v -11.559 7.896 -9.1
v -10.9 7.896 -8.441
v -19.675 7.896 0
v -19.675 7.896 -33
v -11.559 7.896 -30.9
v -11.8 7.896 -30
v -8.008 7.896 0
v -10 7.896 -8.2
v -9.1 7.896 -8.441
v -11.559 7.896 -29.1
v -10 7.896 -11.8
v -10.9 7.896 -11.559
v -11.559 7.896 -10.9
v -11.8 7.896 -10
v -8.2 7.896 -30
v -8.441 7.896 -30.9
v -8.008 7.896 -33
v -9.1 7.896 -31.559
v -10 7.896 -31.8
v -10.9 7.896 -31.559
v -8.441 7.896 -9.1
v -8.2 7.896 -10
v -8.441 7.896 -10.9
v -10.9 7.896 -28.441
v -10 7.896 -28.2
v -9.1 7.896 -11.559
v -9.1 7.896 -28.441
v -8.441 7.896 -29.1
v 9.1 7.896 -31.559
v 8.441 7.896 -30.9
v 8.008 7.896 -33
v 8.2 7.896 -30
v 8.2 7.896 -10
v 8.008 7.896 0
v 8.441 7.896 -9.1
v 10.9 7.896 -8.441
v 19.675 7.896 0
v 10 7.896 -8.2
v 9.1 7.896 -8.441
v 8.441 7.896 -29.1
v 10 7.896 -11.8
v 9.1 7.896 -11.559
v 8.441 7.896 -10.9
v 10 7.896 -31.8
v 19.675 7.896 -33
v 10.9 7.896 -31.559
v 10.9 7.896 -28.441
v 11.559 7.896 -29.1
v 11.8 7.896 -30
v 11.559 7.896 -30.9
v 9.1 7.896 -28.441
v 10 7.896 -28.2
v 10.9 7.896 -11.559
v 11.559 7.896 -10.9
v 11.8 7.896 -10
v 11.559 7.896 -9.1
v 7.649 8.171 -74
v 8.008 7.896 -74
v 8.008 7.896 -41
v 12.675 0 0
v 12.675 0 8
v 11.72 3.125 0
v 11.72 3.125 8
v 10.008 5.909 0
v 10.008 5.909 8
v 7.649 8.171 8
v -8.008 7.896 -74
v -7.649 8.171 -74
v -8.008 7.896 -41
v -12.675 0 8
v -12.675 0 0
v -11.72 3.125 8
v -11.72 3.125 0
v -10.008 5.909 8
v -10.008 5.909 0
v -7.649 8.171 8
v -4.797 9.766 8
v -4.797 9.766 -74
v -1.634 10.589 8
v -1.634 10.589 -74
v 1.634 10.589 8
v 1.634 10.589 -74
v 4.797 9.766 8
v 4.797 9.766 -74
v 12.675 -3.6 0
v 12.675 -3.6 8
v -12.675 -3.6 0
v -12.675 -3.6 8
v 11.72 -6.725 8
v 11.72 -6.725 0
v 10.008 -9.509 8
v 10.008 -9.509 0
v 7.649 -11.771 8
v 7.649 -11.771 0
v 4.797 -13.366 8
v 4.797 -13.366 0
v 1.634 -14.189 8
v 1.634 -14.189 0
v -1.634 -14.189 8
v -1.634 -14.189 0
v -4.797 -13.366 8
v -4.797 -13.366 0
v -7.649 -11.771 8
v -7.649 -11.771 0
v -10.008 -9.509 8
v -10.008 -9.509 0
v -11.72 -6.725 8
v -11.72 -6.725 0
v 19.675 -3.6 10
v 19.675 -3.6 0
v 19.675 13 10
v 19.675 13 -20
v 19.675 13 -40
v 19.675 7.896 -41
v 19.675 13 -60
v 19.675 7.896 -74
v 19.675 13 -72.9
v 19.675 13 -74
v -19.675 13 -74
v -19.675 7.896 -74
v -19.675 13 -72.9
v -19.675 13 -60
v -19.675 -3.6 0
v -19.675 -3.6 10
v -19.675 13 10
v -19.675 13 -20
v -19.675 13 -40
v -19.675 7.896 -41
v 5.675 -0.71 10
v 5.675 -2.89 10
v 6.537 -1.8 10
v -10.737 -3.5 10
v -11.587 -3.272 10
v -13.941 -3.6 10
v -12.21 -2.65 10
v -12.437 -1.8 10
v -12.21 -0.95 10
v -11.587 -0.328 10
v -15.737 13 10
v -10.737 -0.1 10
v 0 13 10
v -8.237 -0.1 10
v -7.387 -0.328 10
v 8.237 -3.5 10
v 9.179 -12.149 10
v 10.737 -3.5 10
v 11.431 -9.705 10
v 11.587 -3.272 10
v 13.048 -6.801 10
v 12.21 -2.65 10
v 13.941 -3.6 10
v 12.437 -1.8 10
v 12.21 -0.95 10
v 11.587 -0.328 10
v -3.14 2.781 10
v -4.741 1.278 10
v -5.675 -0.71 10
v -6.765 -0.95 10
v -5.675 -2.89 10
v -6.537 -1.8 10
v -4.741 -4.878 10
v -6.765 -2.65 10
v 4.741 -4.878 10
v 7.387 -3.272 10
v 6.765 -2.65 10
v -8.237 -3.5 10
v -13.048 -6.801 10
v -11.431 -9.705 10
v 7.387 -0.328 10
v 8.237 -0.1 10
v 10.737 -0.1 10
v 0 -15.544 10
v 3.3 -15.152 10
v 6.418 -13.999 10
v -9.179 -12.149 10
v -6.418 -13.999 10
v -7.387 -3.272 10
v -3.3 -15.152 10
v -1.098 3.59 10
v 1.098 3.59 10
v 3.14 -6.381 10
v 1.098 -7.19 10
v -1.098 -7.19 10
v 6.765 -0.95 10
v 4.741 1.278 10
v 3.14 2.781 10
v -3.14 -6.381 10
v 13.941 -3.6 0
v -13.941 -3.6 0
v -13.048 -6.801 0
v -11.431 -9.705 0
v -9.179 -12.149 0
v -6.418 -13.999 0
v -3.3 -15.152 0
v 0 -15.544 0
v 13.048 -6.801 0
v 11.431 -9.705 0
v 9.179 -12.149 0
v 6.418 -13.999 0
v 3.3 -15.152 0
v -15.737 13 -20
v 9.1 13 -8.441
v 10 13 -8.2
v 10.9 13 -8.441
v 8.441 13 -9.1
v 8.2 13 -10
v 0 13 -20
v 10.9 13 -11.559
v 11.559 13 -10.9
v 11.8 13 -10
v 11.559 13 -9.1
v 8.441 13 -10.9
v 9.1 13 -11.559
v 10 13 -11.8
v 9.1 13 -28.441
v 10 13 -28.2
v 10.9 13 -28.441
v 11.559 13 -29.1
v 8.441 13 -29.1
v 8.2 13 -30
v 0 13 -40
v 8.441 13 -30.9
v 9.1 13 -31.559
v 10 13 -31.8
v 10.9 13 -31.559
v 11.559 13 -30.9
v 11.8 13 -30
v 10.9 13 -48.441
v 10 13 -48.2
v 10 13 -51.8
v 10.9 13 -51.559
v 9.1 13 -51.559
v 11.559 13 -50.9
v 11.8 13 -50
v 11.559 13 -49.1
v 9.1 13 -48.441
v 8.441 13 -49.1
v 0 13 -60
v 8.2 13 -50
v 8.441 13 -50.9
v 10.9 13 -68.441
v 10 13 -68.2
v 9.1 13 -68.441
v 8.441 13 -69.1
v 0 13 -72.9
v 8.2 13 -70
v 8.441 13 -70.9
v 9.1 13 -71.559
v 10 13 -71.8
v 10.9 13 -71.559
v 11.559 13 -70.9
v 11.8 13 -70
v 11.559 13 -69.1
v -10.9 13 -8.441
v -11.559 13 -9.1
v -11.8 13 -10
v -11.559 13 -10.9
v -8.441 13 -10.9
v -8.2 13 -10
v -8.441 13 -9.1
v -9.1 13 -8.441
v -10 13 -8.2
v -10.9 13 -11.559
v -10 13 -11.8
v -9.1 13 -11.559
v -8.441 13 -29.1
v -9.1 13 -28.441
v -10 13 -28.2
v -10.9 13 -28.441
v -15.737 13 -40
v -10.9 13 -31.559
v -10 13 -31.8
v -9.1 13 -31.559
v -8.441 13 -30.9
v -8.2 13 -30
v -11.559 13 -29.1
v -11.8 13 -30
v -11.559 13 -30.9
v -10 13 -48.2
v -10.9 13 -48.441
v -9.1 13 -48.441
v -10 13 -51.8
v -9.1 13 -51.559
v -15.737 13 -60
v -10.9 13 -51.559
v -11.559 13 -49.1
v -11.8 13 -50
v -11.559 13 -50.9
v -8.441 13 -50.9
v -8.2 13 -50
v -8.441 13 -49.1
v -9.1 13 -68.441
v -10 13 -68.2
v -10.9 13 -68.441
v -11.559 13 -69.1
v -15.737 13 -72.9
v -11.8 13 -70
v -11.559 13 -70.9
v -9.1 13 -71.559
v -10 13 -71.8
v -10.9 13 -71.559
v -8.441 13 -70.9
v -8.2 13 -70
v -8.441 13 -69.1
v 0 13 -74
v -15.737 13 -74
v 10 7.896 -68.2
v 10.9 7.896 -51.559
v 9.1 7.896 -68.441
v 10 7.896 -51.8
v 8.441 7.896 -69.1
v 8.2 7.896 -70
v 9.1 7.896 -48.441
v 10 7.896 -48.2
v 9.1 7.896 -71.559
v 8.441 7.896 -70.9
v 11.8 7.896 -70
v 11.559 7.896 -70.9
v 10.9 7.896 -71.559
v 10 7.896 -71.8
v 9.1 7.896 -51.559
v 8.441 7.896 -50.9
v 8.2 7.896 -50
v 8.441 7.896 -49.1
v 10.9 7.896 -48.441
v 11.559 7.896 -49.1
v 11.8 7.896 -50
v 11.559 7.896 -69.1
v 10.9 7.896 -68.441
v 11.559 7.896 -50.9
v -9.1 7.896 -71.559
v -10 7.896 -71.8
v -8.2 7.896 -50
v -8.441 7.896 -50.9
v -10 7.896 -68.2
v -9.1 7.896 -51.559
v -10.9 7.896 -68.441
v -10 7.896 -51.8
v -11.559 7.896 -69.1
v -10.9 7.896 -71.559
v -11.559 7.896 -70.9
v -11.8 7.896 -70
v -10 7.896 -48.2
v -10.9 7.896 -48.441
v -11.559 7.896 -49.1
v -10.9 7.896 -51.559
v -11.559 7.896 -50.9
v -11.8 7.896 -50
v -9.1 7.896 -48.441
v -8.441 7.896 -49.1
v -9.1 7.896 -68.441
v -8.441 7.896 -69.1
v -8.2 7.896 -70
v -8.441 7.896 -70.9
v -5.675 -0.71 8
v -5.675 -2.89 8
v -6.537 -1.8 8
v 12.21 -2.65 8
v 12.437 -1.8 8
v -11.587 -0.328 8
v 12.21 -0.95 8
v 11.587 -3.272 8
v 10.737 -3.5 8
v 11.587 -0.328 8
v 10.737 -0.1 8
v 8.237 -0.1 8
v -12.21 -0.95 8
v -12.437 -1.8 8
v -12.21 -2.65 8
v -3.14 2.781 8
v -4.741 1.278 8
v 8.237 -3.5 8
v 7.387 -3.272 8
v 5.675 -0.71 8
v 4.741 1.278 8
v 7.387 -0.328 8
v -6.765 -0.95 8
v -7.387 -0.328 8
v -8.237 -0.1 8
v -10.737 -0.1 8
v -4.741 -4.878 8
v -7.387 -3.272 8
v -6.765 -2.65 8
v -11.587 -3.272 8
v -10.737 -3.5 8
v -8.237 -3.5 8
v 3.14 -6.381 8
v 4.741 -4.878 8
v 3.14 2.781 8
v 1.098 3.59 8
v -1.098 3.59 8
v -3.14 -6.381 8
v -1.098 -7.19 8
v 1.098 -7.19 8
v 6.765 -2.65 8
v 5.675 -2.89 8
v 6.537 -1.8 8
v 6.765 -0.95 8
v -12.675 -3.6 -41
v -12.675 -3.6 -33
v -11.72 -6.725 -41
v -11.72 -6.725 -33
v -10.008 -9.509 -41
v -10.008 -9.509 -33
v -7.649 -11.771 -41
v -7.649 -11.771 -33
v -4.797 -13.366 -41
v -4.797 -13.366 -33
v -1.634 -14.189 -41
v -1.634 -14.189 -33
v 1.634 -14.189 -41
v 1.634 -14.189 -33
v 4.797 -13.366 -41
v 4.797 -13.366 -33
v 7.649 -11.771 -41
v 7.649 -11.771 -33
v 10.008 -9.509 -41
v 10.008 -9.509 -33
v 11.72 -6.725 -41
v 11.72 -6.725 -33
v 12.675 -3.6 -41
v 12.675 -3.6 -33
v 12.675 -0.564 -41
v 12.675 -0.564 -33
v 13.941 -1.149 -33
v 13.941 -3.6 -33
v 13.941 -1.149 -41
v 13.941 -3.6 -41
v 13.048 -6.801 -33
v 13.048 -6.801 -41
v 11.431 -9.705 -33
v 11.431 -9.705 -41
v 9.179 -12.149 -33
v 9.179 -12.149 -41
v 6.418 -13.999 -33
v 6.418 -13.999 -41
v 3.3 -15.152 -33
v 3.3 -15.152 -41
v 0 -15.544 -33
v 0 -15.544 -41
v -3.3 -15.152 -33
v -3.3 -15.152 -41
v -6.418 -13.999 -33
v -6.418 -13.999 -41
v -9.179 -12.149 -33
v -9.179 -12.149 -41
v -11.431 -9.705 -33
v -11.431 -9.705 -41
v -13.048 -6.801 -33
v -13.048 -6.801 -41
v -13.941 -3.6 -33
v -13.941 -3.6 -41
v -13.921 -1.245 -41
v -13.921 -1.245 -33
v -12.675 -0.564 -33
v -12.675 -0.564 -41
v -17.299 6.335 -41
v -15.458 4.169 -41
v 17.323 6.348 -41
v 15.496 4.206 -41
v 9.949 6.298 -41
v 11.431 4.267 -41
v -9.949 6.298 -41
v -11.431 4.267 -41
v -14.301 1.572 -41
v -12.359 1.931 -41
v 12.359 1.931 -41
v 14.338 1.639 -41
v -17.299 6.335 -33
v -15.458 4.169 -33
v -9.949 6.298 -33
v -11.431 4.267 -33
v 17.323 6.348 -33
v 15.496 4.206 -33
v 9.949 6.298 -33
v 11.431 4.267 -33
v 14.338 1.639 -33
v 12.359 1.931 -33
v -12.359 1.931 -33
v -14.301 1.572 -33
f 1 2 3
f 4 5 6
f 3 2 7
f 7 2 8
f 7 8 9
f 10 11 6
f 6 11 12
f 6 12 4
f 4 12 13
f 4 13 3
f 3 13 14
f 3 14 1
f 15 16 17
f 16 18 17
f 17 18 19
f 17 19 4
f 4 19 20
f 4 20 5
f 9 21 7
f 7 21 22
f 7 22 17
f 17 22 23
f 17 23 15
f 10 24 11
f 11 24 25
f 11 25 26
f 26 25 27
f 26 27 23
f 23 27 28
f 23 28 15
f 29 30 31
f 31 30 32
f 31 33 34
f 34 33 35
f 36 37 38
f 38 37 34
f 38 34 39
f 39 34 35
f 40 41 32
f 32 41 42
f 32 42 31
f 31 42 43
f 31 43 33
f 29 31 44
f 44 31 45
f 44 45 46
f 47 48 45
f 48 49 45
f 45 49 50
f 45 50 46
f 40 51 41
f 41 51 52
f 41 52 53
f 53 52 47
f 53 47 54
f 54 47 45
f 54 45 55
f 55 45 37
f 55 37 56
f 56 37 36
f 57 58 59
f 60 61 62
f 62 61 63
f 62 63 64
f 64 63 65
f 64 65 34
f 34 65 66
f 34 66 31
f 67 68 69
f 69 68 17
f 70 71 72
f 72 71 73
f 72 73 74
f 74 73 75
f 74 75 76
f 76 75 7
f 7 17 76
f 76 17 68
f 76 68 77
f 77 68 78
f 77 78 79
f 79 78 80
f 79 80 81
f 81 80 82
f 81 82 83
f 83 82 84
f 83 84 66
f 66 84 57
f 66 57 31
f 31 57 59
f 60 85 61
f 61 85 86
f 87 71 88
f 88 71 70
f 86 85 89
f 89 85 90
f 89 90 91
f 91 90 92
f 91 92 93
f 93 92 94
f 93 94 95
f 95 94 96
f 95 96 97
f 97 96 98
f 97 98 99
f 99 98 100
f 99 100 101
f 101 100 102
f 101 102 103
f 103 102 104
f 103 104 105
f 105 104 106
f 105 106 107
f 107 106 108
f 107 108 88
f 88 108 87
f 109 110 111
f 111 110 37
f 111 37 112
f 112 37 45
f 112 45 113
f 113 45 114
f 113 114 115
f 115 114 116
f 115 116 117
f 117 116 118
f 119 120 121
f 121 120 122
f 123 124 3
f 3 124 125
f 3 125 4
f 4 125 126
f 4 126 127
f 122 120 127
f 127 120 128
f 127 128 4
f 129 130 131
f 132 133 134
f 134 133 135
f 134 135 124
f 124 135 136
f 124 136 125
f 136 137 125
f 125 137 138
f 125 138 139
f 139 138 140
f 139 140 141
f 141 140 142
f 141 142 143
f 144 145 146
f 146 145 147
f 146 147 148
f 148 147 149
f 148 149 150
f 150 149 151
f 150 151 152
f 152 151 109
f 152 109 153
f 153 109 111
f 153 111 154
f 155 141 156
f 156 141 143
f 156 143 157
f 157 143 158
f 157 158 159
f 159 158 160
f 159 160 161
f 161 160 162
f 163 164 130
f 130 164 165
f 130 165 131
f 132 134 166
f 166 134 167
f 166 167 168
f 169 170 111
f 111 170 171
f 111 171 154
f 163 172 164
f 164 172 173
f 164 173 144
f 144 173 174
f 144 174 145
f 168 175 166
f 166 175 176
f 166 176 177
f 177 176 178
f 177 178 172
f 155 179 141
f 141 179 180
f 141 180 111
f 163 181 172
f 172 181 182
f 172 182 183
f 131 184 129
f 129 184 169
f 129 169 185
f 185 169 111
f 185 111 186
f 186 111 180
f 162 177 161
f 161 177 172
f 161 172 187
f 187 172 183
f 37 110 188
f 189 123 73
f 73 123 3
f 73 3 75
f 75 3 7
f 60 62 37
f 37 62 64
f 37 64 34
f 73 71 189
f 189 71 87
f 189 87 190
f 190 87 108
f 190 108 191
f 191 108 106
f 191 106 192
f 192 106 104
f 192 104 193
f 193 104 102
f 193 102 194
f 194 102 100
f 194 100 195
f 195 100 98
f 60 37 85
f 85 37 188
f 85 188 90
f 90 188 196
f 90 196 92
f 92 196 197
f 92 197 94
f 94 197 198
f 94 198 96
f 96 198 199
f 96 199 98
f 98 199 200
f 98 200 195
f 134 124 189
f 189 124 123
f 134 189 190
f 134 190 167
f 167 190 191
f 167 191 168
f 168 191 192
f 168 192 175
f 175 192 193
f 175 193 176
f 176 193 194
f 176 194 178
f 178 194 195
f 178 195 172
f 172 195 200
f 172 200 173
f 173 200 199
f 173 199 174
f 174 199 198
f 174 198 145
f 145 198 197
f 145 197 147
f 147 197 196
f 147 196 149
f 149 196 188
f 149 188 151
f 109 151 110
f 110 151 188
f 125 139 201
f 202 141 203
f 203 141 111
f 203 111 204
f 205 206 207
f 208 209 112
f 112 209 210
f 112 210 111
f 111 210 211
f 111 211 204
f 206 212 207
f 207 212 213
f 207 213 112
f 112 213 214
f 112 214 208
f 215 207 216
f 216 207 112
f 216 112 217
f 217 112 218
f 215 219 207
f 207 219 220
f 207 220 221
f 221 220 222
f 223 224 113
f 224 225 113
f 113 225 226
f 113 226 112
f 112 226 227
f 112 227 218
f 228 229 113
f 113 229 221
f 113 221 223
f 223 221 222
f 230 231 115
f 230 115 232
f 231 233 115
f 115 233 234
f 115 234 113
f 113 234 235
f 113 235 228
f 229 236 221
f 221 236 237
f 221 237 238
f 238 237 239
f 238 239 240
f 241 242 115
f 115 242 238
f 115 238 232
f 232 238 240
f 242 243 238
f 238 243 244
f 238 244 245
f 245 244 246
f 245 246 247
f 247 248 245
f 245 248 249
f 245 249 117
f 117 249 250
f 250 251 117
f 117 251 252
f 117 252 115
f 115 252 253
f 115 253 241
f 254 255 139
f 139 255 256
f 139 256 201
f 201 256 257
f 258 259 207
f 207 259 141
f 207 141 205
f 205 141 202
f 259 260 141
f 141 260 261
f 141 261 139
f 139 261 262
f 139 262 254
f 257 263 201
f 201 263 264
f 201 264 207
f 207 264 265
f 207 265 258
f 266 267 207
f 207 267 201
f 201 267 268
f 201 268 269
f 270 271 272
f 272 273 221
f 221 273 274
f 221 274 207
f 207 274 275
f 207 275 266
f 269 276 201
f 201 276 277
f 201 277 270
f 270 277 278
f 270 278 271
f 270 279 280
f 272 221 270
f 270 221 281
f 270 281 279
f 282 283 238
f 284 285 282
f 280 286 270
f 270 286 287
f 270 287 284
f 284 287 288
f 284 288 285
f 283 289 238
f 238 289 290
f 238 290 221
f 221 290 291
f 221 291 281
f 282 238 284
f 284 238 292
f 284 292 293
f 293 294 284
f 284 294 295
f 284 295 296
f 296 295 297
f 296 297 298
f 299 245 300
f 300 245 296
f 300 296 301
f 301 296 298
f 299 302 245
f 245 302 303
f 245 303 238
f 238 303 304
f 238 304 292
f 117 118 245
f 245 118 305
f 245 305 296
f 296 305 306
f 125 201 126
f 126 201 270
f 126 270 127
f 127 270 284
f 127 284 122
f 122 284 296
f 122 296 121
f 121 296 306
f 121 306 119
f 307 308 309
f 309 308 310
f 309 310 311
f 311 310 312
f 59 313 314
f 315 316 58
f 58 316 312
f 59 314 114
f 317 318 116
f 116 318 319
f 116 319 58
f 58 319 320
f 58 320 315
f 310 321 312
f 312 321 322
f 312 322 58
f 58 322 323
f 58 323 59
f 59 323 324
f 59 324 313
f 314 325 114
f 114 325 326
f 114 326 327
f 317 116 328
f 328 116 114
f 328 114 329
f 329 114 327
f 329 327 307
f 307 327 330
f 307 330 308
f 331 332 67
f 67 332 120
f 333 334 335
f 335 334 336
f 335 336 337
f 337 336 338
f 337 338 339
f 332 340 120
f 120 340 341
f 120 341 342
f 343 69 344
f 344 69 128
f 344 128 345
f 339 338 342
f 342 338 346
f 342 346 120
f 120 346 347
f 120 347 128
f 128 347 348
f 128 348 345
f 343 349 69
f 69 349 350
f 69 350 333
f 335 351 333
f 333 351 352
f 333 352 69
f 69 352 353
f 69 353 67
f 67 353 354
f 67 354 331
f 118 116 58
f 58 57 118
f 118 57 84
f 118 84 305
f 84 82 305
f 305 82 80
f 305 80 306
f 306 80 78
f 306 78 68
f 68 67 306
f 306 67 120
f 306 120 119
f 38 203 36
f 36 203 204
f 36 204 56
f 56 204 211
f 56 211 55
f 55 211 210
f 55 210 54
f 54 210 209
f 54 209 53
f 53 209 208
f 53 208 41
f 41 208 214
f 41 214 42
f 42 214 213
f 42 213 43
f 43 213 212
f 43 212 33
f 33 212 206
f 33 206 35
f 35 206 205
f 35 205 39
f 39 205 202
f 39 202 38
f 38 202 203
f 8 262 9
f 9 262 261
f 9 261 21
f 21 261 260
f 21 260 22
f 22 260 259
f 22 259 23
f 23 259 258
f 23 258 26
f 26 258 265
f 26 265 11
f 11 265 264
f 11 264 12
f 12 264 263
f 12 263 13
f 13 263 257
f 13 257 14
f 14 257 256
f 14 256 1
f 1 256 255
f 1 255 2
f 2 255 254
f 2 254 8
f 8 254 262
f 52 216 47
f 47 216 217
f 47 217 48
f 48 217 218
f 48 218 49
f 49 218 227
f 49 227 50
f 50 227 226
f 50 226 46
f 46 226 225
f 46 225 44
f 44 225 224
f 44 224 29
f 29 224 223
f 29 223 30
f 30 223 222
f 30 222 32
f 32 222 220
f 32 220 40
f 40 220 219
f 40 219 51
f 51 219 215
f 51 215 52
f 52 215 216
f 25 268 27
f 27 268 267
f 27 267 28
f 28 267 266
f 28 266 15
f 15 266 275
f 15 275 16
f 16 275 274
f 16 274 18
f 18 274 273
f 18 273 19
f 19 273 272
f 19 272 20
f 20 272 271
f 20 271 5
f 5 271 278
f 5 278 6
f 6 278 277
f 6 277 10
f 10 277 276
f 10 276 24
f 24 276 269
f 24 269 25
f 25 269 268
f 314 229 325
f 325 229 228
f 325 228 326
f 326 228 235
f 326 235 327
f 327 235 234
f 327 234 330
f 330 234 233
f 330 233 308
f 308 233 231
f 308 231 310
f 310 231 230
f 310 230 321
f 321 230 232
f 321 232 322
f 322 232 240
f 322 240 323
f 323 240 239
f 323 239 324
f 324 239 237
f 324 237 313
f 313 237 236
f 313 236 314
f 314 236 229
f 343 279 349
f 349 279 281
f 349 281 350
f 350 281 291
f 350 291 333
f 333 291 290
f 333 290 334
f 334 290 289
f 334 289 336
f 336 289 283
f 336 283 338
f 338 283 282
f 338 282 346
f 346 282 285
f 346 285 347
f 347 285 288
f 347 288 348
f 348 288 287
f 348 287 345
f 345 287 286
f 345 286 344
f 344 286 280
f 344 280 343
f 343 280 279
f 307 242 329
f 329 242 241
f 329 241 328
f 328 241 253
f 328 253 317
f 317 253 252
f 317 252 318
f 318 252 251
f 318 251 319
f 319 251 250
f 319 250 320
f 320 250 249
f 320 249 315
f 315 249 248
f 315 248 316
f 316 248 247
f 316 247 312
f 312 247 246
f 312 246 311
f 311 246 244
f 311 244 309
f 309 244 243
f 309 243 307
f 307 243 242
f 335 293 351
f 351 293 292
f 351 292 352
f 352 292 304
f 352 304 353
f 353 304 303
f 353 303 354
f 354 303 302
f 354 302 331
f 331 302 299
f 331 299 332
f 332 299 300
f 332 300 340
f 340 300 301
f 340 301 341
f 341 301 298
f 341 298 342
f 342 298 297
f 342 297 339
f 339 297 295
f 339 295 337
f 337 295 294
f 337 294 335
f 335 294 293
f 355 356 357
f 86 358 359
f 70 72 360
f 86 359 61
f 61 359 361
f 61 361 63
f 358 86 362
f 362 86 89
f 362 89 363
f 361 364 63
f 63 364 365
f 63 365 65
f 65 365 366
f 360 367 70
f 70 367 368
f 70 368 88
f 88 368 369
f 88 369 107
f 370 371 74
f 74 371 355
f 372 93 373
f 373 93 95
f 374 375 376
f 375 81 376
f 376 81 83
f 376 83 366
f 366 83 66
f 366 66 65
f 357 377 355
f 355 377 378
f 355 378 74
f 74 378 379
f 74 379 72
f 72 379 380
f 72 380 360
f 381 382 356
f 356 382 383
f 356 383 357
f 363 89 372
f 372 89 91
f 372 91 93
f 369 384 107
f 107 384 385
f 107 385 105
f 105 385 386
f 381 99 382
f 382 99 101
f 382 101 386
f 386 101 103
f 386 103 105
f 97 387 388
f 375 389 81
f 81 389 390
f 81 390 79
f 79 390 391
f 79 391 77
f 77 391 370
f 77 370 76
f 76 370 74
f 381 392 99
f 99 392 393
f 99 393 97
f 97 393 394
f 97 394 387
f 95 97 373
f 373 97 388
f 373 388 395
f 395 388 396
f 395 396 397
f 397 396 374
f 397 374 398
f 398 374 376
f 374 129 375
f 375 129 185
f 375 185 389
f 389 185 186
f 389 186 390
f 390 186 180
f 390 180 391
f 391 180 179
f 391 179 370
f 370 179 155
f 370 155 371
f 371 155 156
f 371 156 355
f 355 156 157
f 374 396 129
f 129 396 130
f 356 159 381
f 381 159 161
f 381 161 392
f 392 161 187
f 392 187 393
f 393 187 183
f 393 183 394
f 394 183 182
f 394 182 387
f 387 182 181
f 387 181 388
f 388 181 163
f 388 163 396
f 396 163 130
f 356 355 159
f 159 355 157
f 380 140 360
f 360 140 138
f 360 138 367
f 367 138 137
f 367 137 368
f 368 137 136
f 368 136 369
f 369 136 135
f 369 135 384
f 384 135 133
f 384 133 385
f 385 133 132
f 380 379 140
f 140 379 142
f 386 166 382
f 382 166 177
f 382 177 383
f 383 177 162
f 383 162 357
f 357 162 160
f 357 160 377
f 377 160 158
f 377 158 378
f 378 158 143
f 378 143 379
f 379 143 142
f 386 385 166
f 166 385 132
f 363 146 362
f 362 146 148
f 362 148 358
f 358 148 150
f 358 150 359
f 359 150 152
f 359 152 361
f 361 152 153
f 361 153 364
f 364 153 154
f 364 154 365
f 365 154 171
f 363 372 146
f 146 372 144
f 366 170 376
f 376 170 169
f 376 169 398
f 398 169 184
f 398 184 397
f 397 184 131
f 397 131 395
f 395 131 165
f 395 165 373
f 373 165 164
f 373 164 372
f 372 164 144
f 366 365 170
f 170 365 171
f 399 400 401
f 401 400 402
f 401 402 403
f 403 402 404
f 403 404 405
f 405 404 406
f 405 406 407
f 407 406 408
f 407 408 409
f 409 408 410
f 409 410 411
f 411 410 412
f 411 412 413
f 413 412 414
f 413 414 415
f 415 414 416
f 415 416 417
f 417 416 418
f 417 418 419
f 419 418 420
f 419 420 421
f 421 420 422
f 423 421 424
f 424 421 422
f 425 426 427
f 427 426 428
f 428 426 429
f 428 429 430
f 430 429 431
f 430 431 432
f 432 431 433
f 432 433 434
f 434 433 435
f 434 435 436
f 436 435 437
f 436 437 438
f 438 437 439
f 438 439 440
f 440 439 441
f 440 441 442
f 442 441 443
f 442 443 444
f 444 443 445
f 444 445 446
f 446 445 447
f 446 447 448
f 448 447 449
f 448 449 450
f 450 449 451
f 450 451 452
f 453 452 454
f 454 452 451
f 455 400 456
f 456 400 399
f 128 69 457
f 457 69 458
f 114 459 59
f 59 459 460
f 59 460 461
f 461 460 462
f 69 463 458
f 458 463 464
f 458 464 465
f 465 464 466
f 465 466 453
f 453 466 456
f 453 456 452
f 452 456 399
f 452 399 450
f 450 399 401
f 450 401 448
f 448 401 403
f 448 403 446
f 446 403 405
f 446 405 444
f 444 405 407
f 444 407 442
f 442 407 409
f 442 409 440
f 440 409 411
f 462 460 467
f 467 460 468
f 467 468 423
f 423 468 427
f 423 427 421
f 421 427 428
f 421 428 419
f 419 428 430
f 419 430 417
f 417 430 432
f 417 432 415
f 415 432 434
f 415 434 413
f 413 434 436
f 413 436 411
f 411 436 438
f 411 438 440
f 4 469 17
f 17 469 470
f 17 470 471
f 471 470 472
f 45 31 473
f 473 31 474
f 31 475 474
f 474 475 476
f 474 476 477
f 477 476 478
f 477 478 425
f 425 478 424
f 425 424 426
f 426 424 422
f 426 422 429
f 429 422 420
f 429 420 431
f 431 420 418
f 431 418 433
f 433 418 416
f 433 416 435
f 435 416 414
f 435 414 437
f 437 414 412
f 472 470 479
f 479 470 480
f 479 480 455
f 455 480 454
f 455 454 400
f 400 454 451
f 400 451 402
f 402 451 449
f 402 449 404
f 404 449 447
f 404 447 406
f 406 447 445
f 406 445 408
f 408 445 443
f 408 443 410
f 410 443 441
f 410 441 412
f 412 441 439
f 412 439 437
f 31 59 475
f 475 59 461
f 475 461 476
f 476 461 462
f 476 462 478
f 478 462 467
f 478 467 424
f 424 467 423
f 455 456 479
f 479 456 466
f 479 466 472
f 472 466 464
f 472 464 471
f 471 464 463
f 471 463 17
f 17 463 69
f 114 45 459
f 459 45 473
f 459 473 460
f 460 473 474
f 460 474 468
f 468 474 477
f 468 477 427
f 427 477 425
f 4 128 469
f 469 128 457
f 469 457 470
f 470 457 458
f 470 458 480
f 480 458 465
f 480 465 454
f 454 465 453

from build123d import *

# Parameters (mm, degrees)
BOSS_EXTRUDE1_DEPTH  = 10
BOSS_EXTRUDE3_DEPTH  = 10
BOSS_EXTRUDE4_START  = 74
BOSS_EXTRUDE4_DEPTH  = 74
M3_CLEARANCE_HOLE1_D = 3.6
LPATTERN1_COUNT      = 4
LPATTERN1_PITCH      = 20
BOSS_EXTRUDE6_START  = -2
BOSS_EXTRUDE6_DEPTH  = 2
BOSS_EXTRUDE7_START  = 8
BOSS_EXTRUDE7_DEPTH  = 8
FILLET1_R            = 10


with BuildPart() as part:
    # Sketch1 → Boss-Extrude1 (new body)
    with BuildSketch(Plane.XY):
        with BuildLine():
            Line((-13.941467283, 0), (-19.675, 0))
            Line((-19.675, 0), (-19.675, -1.8))
            Line((-19.675, -1.8), (-12.675, -1.8))
            Line((-12.675, -1.8), (-12.675, 0))
            ThreePointArc((-12.675, 0), (0, 10.693655384), (12.675, 0))
            Line((12.675, 0), (12.675, -1.8))
            Line((12.675, -1.8), (19.675, -1.8))
            Line((19.675, -1.8), (19.675, 0))
            Line((19.675, 0), (13.941467283, 0))
            ThreePointArc((13.941467283, 0), (0, 11.943655384), (-13.941467283, 0))
        make_face()
    boss_extrude1 = extrude(amount=BOSS_EXTRUDE1_DEPTH)

    # Mirror1: Boss-Extrude1 across plane
    add(boss_extrude1.mirror(Plane(origin=(-12.675, -1.8, 10), x_dir=(0, 0, 1), z_dir=(0, 1, 0))))

    # Sketch6 → Boss-Extrude3 (add)
    with BuildSketch(Plane(origin=(0, 0, 0), x_dir=(-1, 0, 0), z_dir=(0, 0, -1))):
        with BuildLine():
            Line((13.941467283, 0), (19.675, 0))
            Line((19.675, 0), (19.675, 13))
            Line((19.675, 13), (-19.675, 13))
            Line((-19.675, 13), (-19.675, 0))
            Line((-19.675, 0), (-13.941467283, 0))
            ThreePointArc((-13.941467283, 0), (0, 11.943655384), (13.941467283, 0))
        make_face()
    extrude(amount=-BOSS_EXTRUDE3_DEPTH)

    # Sketch15 → Boss-Extrude4 (add)
    with BuildSketch(Plane(origin=(0, 0, 0), x_dir=(-1, 0, 0), z_dir=(0, 0, -1)).offset(BOSS_EXTRUDE4_START)):
        with BuildLine():
            Line((8.007949472, 7.895675733), (19.675, 7.895675733))
            Line((19.675, 7.895675733), (19.675, 13))
            Line((19.675, 13), (-19.675, 13))
            Line((-19.675, 13), (-19.675, 7.895675733))
            Line((-19.675, 7.895675733), (-8.007949472, 7.895675733))
            ThreePointArc((-8.007949472, 7.895675733), (0, 10.693655384), (8.007949472, 7.895675733))
        make_face()
    extrude(amount=-BOSS_EXTRUDE4_DEPTH)

    # M3 Clearance Hole1 (through all)
    with Locations(Plane(origin=(0, 13, 0), x_dir=(1, 0, 0), z_dir=(0, 1, 0))):
        with Locations((-10, 10), (10, 10)):
            m3_clearance_hole1 = Hole(M3_CLEARANCE_HOLE1_D / 2)

    # LPattern1: M3 Clearance Hole1 ×4
    with Locations(*[(0, 0, -i * LPATTERN1_PITCH) for i in range(1, LPATTERN1_COUNT)]):
        add(m3_clearance_hole1, mode=Mode.SUBTRACT)

    # Sketch17 → Boss-Extrude6 (add)
    with BuildSketch(Plane.XY.offset(10).offset(BOSS_EXTRUDE6_START)):
        with BuildLine():
            Line((12.675, 0), (12.675, -3.6))
            ThreePointArc((12.675, -3.6), (0, -14.293655384), (-12.675, -3.6))
            Line((-12.675, -3.6), (-12.675, 0))
            ThreePointArc((-12.675, 0), (0, 10.693655384), (12.675, 0))
        make_face()
        with BuildLine():
            Line((5.675, -0.709896901), (5.675, -2.890103099))
            ThreePointArc((5.675, -2.890103099), (0, -7.293655384), (-5.675, -2.890103099))
            Line((-5.675, -2.890103099), (-5.675, -0.709896901))
            ThreePointArc((-5.675, -0.709896901), (0, 3.693655384), (5.675, -0.709896901))
        make_face(mode=Mode.SUBTRACT)
        with BuildLine():
            Line((-10.737300272, -0.1), (-8.237300272, -0.1))
            ThreePointArc((-8.237300272, -0.1), (-6.537300272, -1.8), (-8.237300272, -3.5))
            Line((-8.237300272, -3.5), (-10.737300272, -3.5))
            ThreePointArc((-10.737300272, -3.5), (-12.437300272, -1.8), (-10.737300272, -0.1))
        make_face(mode=Mode.SUBTRACT)
        with BuildLine():
            Line((10.737300272, -0.1), (8.237300272, -0.1))
            ThreePointArc((8.237300272, -0.1), (6.537300272, -1.8), (8.237300272, -3.5))
            Line((8.237300272, -3.5), (10.737300272, -3.5))
            ThreePointArc((10.737300272, -3.5), (12.437300272, -1.8), (10.737300272, -0.1))
        make_face(mode=Mode.SUBTRACT)
    extrude(amount=BOSS_EXTRUDE6_DEPTH)

    # Sketch18 → Boss-Extrude7 (add)
    with BuildSketch(Plane(origin=(0, 0, -33), x_dir=(-1, 0, 0), z_dir=(0, 0, -1)).offset(BOSS_EXTRUDE7_START)):
        with BuildLine():
            Line((12.675, -3.6), (12.675, 0))
            Line((12.675, 0), (12.675, 7.895675733))
            Line((12.675, 7.895675733), (13.841474736, 7.895675733))
            Line((13.841474736, 7.895675733), (13.941467283, -3.6))
            ThreePointArc((13.941467283, -3.6), (0, -15.543655384), (-13.941467283, -3.6))
            Line((-13.941467283, -3.6), (-13.941467283, 7.895675733))
            Line((-13.941467283, 7.895675733), (-12.675, 7.895675733))
            Line((-12.675, 7.895675733), (-12.675, 0))
            Line((-12.675, 0), (-12.675, -3.6))
            ThreePointArc((-12.675, -3.6), (0, -14.293655384), (12.675, -3.6))
        make_face()
    extrude(amount=-BOSS_EXTRUDE7_DEPTH)

    # Fillet1
    # the kernel refuses this fillet: 10 mm, written as the material it adds along each edge
    with BuildSketch(Plane(origin=(12.675, 7.895675733, -41), x_dir=(-1, 0, 0), z_dir=(0, 0, 1))) as fillet1_piece_1:
        with BuildLine():
            CenterArc((10, 8.459293702), FILLET1_R, 180, 57.771647339)
            Line((0, 8.459293702), (0, 0))
            Line((0, 0), (4.667050528, 0))
        make_face()
    extrude(amount=8)
    with BuildSketch(Plane(origin=(13.941467283, 7.895675733, -41), x_dir=(1, 0, 0), z_dir=(0, 0, 1))) as fillet1_piece_2:
        with BuildLine():
            CenterArc((10, -9.044183596), FILLET1_R, 115.254940541, 64.745059459)
            Line((0, -9.044183596), (0, 0))
            Line((0, 0), (5.733532717, 0))
        make_face()
    extrude(amount=8)
    with BuildSketch(Plane(origin=(-13.841474736, 7.895675733, -41), x_dir=(-1, 0, 0), z_dir=(0, 0, 1))) as fillet1_piece_3:
        with BuildLine():
            CenterArc((10.079132427, 9.053994688), FILLET1_R, 179.501638131, 65.375500513)
            Line((0.079510705, 9.140974146), (0, 0))
            Line((0, 0), (5.833525264, 0))
        make_face()
    extrude(amount=8)
    with BuildSketch(Plane(origin=(-12.675, 7.895675733, -41), x_dir=(1, 0, 0), z_dir=(0, 0, 1))) as fillet1_piece_4:
        with BuildLine():
            CenterArc((10, -8.459293702), FILLET1_R, 122.228352661, 57.771647339)
            Line((0, -8.459293702), (0, 0))
            Line((0, 0), (4.667050528, 0))
        make_face()
    extrude(amount=8)


solid = part.part
